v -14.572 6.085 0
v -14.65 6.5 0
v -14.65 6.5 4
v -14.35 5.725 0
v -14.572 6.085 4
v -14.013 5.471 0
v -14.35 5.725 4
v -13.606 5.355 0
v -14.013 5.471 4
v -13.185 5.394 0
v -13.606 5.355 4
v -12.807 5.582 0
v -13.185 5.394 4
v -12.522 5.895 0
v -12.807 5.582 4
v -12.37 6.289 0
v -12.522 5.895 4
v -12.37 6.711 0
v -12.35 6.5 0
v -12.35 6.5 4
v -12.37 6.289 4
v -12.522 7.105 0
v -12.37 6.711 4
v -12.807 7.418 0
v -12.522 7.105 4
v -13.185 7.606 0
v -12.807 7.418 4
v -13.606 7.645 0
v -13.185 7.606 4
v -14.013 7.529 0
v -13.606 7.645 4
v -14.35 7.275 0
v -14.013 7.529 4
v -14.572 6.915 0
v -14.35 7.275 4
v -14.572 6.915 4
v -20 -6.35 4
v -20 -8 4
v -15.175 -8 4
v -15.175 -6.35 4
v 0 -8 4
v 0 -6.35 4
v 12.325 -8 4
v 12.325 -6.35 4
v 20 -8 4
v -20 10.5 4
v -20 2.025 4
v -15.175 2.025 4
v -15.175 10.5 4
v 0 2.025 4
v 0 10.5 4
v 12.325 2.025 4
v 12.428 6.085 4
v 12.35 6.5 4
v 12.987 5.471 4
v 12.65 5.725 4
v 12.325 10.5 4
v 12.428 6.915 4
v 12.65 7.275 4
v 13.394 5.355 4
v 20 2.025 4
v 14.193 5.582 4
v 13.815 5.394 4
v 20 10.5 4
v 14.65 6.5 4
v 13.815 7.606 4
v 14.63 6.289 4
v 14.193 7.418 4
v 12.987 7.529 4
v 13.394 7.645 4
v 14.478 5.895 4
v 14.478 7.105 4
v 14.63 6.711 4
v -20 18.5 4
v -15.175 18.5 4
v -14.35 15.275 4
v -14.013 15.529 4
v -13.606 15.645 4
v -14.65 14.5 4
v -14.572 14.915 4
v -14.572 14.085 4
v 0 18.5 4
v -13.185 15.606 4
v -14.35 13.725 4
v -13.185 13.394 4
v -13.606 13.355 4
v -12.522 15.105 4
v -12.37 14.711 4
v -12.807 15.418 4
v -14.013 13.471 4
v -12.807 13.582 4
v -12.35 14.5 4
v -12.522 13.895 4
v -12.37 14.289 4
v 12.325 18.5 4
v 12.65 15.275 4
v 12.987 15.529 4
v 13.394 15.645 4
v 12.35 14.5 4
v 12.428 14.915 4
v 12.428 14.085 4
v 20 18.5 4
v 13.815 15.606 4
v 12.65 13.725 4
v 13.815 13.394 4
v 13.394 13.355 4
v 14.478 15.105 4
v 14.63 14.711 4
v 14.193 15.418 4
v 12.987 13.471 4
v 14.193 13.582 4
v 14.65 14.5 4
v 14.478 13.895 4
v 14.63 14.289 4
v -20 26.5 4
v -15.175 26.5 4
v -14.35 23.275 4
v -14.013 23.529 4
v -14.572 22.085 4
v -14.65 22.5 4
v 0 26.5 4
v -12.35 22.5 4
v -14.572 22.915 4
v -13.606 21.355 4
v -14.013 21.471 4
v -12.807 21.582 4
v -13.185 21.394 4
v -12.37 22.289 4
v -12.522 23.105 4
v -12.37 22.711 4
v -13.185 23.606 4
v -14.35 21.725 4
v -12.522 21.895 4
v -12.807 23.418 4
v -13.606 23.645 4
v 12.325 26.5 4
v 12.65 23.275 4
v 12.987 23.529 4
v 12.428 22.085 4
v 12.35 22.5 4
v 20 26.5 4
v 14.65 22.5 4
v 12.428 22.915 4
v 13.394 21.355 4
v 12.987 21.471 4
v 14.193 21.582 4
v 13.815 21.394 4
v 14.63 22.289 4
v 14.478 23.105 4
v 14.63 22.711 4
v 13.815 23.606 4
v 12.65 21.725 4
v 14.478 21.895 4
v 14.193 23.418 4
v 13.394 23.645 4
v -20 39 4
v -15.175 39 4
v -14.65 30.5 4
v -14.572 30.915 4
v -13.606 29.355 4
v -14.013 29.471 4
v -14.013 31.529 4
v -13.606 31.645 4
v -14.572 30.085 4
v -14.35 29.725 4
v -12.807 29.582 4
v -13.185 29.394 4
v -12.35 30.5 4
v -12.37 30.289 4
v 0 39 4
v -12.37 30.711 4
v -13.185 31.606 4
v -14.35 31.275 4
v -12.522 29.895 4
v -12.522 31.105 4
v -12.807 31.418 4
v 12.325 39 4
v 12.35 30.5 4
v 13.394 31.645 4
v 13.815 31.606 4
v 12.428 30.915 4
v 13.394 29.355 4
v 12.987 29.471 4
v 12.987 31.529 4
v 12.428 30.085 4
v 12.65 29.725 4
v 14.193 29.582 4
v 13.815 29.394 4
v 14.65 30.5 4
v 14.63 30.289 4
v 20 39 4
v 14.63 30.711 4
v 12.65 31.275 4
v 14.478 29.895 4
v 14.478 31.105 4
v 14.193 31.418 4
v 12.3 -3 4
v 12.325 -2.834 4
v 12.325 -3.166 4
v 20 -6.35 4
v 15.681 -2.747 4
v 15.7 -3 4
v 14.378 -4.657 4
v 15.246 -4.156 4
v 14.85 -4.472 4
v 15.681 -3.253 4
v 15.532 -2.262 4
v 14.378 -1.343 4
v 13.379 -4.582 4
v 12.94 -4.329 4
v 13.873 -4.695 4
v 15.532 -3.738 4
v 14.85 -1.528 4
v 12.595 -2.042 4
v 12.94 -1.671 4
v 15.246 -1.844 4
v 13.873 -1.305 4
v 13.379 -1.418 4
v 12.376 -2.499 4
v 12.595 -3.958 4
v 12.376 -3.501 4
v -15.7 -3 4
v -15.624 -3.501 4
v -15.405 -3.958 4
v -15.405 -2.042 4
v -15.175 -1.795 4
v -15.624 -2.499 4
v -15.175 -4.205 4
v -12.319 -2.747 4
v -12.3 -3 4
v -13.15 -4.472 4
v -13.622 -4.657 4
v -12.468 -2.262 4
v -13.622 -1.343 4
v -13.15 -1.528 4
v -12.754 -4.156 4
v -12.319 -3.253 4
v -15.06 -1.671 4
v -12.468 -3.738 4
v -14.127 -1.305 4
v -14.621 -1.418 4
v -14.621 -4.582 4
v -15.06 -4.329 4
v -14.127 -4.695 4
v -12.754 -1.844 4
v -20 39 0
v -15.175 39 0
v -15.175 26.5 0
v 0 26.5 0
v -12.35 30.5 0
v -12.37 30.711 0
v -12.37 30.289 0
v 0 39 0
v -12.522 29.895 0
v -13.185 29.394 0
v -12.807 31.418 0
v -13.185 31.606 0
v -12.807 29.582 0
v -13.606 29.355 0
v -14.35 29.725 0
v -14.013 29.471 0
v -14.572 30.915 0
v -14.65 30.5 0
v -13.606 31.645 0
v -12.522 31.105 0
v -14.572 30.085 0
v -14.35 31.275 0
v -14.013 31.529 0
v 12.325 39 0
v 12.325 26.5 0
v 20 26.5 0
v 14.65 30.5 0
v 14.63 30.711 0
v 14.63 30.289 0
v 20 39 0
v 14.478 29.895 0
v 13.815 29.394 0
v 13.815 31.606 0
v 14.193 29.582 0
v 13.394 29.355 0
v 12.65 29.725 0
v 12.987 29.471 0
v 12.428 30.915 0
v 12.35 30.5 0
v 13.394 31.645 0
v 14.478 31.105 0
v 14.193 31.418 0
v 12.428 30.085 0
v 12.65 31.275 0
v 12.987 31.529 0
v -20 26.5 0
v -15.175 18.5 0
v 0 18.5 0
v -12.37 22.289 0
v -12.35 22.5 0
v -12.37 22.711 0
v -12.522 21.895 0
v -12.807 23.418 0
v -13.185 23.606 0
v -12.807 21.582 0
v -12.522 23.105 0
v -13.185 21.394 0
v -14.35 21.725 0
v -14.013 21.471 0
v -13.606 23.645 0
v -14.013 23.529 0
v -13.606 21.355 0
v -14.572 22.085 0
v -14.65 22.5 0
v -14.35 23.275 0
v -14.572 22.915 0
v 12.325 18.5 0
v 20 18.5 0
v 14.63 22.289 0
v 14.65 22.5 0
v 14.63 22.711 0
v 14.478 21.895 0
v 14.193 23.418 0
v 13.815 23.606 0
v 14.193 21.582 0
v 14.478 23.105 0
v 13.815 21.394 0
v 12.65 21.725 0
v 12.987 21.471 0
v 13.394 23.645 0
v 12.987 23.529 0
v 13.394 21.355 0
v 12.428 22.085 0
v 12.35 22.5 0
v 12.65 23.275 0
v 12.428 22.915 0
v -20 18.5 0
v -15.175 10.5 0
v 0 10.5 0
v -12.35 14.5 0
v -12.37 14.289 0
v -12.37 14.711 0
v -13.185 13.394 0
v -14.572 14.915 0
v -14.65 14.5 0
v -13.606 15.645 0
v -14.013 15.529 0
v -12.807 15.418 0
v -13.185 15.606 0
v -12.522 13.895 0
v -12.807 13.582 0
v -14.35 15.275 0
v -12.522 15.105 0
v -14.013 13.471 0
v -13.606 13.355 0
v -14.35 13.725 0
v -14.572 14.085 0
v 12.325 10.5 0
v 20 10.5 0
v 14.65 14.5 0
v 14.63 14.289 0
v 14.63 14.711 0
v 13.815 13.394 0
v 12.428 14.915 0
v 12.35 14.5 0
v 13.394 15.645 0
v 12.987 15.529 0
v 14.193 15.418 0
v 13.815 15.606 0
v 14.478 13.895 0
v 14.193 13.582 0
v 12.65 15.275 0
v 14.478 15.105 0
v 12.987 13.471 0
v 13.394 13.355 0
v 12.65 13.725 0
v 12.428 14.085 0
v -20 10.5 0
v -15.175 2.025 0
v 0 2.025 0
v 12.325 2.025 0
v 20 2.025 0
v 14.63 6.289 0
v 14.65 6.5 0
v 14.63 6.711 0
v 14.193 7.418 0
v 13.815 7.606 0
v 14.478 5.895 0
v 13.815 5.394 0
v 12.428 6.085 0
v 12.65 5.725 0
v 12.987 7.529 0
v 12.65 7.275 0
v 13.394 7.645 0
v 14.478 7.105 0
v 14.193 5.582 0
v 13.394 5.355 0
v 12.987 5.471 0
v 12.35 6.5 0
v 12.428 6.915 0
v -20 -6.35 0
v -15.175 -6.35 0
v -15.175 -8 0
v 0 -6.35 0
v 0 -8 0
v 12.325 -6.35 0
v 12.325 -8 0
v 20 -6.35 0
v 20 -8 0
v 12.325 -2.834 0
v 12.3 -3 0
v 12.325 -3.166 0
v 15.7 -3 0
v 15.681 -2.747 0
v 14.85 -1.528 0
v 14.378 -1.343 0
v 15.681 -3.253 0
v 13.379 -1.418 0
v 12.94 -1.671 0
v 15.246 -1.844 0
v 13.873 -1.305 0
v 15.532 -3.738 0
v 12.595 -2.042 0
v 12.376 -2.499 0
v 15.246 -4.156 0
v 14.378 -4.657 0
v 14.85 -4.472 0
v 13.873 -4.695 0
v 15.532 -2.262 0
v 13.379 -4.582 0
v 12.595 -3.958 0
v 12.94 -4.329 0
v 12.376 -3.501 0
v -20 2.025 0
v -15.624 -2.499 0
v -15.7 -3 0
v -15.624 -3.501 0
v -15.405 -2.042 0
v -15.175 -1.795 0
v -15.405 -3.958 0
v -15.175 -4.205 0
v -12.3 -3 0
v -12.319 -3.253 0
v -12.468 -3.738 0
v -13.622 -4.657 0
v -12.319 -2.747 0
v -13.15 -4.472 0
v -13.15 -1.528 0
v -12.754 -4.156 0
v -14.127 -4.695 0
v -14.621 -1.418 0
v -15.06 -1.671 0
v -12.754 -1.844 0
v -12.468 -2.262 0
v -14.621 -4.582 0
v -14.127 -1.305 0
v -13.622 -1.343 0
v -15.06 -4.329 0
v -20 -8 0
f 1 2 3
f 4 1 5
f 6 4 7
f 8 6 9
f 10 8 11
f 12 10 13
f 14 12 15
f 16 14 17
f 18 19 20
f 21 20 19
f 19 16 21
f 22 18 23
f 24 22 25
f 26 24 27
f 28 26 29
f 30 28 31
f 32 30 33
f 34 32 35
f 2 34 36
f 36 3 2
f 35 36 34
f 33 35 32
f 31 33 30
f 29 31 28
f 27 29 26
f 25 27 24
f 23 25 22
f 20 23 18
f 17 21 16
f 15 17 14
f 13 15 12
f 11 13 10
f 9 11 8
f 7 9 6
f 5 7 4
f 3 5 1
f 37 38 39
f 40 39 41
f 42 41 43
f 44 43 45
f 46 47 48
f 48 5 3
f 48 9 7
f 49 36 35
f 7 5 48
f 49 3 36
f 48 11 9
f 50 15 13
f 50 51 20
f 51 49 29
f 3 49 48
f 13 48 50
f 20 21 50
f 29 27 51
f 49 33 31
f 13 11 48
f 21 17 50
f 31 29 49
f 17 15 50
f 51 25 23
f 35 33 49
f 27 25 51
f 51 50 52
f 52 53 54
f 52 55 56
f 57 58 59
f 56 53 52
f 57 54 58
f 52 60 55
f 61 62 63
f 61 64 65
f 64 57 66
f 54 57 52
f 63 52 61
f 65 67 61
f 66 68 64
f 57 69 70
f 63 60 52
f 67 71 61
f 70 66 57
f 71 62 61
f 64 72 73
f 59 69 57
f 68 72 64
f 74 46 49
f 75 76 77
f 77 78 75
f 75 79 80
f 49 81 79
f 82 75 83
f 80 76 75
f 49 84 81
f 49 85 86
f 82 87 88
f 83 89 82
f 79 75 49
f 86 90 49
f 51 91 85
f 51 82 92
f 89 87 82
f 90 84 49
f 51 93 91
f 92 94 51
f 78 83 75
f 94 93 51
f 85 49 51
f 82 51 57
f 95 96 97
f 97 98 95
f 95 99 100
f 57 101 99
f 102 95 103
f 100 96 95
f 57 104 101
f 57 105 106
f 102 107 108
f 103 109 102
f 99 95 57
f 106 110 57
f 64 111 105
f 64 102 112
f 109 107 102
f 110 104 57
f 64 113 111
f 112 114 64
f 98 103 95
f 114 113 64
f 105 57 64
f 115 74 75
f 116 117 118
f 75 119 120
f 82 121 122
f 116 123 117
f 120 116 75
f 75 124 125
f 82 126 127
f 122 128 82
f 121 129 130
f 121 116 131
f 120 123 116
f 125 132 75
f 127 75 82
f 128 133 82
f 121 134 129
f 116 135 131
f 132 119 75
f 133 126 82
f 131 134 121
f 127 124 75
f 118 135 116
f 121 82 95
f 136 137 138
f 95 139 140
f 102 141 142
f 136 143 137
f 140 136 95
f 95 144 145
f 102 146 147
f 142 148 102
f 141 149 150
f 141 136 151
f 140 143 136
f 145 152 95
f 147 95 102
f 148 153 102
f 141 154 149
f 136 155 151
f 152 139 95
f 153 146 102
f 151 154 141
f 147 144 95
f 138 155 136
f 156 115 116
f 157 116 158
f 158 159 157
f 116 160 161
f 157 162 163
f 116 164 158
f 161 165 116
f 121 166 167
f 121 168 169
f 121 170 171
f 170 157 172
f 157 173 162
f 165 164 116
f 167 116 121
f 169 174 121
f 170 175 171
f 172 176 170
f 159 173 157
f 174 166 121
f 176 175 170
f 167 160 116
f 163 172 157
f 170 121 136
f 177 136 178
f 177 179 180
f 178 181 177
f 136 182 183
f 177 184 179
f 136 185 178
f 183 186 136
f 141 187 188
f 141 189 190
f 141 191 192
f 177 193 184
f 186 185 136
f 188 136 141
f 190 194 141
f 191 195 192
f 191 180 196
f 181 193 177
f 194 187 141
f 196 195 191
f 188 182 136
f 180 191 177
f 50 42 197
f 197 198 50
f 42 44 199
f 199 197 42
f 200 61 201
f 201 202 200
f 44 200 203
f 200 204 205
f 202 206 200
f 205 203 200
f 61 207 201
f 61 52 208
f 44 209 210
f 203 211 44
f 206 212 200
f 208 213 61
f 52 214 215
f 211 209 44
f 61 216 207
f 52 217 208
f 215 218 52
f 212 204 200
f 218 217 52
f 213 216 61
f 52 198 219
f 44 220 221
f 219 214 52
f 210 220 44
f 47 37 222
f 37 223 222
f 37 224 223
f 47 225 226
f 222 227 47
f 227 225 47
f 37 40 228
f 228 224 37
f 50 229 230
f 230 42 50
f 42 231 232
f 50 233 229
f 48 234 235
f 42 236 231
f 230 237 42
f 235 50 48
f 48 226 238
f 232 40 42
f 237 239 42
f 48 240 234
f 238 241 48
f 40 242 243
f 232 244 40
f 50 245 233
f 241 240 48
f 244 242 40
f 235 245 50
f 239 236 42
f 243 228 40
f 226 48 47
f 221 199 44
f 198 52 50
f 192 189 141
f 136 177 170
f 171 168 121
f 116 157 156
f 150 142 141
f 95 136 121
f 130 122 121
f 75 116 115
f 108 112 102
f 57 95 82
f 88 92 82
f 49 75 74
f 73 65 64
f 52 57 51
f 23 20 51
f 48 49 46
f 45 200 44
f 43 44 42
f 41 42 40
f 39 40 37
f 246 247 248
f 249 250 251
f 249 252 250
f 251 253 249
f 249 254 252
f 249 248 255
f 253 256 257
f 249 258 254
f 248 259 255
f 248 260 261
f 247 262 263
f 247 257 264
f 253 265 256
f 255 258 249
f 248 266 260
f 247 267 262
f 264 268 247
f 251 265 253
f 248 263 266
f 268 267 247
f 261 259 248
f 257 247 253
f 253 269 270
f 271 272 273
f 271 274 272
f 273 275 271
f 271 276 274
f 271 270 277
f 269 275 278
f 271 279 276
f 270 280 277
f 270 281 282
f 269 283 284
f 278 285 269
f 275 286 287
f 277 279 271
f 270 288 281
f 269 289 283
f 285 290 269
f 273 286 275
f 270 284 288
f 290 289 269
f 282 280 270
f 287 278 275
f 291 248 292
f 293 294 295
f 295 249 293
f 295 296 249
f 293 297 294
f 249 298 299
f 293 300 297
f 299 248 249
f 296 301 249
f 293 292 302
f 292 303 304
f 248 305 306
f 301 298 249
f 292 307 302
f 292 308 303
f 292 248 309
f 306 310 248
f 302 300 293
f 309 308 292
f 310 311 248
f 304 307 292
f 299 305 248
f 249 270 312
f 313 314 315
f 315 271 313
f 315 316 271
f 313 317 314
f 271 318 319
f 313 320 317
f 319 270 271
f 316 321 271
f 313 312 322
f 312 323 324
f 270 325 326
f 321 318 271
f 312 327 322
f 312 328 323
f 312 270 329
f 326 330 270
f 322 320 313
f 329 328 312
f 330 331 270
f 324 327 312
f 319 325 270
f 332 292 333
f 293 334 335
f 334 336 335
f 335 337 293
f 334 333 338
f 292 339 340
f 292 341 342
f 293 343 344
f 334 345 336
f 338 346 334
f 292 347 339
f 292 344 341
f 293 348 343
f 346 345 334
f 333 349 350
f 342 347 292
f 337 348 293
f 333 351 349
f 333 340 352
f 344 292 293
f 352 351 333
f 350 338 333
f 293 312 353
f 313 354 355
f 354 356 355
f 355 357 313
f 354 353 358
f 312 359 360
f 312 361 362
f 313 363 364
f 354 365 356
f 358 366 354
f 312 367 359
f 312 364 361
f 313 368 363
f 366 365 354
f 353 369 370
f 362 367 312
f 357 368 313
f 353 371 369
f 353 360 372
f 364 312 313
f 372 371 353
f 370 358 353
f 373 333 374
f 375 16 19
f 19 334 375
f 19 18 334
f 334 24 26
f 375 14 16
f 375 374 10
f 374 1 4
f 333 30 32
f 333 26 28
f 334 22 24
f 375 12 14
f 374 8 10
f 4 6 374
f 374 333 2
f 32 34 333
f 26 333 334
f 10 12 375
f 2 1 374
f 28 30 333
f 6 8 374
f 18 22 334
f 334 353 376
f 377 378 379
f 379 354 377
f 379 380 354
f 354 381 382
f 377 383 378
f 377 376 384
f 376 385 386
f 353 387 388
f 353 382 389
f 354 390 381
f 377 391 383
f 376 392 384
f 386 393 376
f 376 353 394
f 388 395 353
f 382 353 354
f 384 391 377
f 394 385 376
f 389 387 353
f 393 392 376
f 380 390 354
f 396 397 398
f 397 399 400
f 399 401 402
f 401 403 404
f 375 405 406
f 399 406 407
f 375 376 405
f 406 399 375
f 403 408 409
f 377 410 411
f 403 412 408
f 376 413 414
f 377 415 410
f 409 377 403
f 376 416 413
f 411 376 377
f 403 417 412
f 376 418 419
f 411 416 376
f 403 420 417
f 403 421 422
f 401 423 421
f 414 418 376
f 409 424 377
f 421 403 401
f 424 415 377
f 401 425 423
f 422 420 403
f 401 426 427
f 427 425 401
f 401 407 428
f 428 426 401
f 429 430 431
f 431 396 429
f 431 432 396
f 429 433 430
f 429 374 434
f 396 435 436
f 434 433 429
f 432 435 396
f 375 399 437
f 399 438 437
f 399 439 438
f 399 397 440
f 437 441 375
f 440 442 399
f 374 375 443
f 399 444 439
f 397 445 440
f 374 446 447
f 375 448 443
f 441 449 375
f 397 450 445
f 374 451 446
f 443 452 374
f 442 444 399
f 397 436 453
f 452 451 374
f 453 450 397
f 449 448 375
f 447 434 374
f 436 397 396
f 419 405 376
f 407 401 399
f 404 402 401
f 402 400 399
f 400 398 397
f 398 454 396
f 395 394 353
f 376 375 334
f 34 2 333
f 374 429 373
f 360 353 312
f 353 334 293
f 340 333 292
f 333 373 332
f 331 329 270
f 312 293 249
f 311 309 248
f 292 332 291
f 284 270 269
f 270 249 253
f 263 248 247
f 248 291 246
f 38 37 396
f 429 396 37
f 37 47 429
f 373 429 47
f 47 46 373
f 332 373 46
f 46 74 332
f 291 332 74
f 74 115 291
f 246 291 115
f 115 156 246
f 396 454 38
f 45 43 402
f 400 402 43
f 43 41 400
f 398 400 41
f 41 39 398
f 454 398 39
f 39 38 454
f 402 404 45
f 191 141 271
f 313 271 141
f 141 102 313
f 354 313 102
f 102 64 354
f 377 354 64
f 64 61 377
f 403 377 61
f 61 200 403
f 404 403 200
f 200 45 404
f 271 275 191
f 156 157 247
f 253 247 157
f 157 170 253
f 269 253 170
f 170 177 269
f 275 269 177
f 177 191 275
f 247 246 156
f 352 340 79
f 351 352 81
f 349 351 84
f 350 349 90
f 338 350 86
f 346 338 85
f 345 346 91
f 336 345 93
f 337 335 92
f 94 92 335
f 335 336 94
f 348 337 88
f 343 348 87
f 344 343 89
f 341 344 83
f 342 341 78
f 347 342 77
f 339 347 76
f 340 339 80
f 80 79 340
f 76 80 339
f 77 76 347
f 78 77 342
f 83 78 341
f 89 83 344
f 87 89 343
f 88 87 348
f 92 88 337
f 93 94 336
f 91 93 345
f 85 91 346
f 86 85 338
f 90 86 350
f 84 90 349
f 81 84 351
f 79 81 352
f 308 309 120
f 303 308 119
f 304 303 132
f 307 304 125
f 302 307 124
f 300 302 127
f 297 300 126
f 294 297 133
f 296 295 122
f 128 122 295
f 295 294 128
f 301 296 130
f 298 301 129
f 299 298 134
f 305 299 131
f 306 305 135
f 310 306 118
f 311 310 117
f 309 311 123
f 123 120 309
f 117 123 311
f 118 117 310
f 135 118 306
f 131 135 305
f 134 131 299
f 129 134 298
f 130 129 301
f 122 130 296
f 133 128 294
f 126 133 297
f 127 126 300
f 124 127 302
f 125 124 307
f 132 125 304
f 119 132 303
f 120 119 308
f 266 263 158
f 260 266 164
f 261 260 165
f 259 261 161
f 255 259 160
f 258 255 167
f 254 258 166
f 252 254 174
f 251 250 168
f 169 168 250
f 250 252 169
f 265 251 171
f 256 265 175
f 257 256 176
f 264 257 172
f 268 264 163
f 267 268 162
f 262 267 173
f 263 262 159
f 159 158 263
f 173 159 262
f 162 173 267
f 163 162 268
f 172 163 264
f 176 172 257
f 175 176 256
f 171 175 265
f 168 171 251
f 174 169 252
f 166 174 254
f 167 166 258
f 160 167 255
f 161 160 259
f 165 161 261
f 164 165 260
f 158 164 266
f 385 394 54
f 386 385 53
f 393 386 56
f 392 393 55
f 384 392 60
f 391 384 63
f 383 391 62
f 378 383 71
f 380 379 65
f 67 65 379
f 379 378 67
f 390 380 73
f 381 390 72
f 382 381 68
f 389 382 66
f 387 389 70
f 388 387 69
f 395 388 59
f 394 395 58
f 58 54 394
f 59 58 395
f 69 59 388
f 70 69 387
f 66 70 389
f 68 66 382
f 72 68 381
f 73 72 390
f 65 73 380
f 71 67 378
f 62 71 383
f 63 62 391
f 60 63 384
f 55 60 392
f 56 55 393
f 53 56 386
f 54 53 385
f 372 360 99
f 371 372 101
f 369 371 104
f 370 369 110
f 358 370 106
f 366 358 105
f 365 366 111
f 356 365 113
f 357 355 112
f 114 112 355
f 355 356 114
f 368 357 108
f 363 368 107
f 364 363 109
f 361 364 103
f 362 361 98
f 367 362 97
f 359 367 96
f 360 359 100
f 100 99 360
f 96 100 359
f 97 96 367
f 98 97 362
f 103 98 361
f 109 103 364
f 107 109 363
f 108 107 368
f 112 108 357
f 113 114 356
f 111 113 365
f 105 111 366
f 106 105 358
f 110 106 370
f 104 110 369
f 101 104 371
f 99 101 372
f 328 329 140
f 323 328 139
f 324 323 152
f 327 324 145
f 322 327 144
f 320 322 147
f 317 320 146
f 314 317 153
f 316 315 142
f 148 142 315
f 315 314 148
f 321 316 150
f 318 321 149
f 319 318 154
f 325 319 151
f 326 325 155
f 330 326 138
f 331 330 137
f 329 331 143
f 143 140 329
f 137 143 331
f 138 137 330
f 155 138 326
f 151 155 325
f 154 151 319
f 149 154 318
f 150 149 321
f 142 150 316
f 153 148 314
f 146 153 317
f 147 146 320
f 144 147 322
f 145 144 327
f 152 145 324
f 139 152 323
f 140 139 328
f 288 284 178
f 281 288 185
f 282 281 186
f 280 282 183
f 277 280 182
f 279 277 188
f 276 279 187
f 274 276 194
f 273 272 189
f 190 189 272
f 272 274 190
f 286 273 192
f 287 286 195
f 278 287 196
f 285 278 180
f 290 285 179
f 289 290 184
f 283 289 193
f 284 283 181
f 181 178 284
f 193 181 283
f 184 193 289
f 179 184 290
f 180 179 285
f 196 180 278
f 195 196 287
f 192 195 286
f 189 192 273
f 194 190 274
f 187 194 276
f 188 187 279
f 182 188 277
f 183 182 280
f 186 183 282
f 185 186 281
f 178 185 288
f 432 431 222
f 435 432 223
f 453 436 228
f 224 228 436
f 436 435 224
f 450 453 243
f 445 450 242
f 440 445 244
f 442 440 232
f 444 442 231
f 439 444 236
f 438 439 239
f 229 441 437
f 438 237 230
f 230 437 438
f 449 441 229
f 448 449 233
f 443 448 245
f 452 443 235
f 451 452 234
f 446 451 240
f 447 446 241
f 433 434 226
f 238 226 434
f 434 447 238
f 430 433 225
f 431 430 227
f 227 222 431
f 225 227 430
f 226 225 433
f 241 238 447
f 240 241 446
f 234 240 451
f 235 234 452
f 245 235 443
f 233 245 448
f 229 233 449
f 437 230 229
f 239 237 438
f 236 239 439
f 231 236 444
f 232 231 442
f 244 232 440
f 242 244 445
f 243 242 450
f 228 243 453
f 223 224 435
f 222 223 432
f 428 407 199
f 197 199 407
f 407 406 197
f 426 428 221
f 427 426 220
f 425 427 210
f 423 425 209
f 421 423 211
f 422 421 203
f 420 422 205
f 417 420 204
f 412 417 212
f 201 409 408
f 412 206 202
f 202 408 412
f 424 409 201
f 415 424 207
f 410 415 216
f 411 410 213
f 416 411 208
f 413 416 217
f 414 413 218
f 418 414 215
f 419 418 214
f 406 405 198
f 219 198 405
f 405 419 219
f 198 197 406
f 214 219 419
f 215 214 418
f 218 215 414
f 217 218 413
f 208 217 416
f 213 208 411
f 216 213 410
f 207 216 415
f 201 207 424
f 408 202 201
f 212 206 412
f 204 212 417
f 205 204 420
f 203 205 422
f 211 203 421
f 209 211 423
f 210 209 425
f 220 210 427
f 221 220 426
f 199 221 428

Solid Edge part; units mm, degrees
sketch "Sketch1" plane through (0, 0, 0) normal (0, 0, 1) x (1, 0, 0)
  line L0 (-20, -8) -> (20, -8)
  line L1 (20, -8) -> (20, 39)
  line L2 (20, 39) -> (-20, 39)
  line L3 (-20, 39) -> (-20, -8)
  circle A0 centre (-13.5, 6.5) radius 1.15
  circle A1 centre (-13.5, 14.5) radius 1.15
  circle A2 centre (-13.5, 22.5) radius 1.15
  circle A3 centre (-13.5, 30.5) radius 1.15
  circle A4 centre (13.5, 6.5) radius 1.15
  circle A5 centre (13.5, 14.5) radius 1.15
  circle A6 centre (13.5, 22.5) radius 1.15
  circle A7 centre (13.5, 30.5) radius 1.15
  circle A8 centre (-14, -3) radius 1.7
  circle A9 centre (14, -3) radius 1.7
extrude "Protrusion1" add sketch "Sketch1" along normal blind 4
